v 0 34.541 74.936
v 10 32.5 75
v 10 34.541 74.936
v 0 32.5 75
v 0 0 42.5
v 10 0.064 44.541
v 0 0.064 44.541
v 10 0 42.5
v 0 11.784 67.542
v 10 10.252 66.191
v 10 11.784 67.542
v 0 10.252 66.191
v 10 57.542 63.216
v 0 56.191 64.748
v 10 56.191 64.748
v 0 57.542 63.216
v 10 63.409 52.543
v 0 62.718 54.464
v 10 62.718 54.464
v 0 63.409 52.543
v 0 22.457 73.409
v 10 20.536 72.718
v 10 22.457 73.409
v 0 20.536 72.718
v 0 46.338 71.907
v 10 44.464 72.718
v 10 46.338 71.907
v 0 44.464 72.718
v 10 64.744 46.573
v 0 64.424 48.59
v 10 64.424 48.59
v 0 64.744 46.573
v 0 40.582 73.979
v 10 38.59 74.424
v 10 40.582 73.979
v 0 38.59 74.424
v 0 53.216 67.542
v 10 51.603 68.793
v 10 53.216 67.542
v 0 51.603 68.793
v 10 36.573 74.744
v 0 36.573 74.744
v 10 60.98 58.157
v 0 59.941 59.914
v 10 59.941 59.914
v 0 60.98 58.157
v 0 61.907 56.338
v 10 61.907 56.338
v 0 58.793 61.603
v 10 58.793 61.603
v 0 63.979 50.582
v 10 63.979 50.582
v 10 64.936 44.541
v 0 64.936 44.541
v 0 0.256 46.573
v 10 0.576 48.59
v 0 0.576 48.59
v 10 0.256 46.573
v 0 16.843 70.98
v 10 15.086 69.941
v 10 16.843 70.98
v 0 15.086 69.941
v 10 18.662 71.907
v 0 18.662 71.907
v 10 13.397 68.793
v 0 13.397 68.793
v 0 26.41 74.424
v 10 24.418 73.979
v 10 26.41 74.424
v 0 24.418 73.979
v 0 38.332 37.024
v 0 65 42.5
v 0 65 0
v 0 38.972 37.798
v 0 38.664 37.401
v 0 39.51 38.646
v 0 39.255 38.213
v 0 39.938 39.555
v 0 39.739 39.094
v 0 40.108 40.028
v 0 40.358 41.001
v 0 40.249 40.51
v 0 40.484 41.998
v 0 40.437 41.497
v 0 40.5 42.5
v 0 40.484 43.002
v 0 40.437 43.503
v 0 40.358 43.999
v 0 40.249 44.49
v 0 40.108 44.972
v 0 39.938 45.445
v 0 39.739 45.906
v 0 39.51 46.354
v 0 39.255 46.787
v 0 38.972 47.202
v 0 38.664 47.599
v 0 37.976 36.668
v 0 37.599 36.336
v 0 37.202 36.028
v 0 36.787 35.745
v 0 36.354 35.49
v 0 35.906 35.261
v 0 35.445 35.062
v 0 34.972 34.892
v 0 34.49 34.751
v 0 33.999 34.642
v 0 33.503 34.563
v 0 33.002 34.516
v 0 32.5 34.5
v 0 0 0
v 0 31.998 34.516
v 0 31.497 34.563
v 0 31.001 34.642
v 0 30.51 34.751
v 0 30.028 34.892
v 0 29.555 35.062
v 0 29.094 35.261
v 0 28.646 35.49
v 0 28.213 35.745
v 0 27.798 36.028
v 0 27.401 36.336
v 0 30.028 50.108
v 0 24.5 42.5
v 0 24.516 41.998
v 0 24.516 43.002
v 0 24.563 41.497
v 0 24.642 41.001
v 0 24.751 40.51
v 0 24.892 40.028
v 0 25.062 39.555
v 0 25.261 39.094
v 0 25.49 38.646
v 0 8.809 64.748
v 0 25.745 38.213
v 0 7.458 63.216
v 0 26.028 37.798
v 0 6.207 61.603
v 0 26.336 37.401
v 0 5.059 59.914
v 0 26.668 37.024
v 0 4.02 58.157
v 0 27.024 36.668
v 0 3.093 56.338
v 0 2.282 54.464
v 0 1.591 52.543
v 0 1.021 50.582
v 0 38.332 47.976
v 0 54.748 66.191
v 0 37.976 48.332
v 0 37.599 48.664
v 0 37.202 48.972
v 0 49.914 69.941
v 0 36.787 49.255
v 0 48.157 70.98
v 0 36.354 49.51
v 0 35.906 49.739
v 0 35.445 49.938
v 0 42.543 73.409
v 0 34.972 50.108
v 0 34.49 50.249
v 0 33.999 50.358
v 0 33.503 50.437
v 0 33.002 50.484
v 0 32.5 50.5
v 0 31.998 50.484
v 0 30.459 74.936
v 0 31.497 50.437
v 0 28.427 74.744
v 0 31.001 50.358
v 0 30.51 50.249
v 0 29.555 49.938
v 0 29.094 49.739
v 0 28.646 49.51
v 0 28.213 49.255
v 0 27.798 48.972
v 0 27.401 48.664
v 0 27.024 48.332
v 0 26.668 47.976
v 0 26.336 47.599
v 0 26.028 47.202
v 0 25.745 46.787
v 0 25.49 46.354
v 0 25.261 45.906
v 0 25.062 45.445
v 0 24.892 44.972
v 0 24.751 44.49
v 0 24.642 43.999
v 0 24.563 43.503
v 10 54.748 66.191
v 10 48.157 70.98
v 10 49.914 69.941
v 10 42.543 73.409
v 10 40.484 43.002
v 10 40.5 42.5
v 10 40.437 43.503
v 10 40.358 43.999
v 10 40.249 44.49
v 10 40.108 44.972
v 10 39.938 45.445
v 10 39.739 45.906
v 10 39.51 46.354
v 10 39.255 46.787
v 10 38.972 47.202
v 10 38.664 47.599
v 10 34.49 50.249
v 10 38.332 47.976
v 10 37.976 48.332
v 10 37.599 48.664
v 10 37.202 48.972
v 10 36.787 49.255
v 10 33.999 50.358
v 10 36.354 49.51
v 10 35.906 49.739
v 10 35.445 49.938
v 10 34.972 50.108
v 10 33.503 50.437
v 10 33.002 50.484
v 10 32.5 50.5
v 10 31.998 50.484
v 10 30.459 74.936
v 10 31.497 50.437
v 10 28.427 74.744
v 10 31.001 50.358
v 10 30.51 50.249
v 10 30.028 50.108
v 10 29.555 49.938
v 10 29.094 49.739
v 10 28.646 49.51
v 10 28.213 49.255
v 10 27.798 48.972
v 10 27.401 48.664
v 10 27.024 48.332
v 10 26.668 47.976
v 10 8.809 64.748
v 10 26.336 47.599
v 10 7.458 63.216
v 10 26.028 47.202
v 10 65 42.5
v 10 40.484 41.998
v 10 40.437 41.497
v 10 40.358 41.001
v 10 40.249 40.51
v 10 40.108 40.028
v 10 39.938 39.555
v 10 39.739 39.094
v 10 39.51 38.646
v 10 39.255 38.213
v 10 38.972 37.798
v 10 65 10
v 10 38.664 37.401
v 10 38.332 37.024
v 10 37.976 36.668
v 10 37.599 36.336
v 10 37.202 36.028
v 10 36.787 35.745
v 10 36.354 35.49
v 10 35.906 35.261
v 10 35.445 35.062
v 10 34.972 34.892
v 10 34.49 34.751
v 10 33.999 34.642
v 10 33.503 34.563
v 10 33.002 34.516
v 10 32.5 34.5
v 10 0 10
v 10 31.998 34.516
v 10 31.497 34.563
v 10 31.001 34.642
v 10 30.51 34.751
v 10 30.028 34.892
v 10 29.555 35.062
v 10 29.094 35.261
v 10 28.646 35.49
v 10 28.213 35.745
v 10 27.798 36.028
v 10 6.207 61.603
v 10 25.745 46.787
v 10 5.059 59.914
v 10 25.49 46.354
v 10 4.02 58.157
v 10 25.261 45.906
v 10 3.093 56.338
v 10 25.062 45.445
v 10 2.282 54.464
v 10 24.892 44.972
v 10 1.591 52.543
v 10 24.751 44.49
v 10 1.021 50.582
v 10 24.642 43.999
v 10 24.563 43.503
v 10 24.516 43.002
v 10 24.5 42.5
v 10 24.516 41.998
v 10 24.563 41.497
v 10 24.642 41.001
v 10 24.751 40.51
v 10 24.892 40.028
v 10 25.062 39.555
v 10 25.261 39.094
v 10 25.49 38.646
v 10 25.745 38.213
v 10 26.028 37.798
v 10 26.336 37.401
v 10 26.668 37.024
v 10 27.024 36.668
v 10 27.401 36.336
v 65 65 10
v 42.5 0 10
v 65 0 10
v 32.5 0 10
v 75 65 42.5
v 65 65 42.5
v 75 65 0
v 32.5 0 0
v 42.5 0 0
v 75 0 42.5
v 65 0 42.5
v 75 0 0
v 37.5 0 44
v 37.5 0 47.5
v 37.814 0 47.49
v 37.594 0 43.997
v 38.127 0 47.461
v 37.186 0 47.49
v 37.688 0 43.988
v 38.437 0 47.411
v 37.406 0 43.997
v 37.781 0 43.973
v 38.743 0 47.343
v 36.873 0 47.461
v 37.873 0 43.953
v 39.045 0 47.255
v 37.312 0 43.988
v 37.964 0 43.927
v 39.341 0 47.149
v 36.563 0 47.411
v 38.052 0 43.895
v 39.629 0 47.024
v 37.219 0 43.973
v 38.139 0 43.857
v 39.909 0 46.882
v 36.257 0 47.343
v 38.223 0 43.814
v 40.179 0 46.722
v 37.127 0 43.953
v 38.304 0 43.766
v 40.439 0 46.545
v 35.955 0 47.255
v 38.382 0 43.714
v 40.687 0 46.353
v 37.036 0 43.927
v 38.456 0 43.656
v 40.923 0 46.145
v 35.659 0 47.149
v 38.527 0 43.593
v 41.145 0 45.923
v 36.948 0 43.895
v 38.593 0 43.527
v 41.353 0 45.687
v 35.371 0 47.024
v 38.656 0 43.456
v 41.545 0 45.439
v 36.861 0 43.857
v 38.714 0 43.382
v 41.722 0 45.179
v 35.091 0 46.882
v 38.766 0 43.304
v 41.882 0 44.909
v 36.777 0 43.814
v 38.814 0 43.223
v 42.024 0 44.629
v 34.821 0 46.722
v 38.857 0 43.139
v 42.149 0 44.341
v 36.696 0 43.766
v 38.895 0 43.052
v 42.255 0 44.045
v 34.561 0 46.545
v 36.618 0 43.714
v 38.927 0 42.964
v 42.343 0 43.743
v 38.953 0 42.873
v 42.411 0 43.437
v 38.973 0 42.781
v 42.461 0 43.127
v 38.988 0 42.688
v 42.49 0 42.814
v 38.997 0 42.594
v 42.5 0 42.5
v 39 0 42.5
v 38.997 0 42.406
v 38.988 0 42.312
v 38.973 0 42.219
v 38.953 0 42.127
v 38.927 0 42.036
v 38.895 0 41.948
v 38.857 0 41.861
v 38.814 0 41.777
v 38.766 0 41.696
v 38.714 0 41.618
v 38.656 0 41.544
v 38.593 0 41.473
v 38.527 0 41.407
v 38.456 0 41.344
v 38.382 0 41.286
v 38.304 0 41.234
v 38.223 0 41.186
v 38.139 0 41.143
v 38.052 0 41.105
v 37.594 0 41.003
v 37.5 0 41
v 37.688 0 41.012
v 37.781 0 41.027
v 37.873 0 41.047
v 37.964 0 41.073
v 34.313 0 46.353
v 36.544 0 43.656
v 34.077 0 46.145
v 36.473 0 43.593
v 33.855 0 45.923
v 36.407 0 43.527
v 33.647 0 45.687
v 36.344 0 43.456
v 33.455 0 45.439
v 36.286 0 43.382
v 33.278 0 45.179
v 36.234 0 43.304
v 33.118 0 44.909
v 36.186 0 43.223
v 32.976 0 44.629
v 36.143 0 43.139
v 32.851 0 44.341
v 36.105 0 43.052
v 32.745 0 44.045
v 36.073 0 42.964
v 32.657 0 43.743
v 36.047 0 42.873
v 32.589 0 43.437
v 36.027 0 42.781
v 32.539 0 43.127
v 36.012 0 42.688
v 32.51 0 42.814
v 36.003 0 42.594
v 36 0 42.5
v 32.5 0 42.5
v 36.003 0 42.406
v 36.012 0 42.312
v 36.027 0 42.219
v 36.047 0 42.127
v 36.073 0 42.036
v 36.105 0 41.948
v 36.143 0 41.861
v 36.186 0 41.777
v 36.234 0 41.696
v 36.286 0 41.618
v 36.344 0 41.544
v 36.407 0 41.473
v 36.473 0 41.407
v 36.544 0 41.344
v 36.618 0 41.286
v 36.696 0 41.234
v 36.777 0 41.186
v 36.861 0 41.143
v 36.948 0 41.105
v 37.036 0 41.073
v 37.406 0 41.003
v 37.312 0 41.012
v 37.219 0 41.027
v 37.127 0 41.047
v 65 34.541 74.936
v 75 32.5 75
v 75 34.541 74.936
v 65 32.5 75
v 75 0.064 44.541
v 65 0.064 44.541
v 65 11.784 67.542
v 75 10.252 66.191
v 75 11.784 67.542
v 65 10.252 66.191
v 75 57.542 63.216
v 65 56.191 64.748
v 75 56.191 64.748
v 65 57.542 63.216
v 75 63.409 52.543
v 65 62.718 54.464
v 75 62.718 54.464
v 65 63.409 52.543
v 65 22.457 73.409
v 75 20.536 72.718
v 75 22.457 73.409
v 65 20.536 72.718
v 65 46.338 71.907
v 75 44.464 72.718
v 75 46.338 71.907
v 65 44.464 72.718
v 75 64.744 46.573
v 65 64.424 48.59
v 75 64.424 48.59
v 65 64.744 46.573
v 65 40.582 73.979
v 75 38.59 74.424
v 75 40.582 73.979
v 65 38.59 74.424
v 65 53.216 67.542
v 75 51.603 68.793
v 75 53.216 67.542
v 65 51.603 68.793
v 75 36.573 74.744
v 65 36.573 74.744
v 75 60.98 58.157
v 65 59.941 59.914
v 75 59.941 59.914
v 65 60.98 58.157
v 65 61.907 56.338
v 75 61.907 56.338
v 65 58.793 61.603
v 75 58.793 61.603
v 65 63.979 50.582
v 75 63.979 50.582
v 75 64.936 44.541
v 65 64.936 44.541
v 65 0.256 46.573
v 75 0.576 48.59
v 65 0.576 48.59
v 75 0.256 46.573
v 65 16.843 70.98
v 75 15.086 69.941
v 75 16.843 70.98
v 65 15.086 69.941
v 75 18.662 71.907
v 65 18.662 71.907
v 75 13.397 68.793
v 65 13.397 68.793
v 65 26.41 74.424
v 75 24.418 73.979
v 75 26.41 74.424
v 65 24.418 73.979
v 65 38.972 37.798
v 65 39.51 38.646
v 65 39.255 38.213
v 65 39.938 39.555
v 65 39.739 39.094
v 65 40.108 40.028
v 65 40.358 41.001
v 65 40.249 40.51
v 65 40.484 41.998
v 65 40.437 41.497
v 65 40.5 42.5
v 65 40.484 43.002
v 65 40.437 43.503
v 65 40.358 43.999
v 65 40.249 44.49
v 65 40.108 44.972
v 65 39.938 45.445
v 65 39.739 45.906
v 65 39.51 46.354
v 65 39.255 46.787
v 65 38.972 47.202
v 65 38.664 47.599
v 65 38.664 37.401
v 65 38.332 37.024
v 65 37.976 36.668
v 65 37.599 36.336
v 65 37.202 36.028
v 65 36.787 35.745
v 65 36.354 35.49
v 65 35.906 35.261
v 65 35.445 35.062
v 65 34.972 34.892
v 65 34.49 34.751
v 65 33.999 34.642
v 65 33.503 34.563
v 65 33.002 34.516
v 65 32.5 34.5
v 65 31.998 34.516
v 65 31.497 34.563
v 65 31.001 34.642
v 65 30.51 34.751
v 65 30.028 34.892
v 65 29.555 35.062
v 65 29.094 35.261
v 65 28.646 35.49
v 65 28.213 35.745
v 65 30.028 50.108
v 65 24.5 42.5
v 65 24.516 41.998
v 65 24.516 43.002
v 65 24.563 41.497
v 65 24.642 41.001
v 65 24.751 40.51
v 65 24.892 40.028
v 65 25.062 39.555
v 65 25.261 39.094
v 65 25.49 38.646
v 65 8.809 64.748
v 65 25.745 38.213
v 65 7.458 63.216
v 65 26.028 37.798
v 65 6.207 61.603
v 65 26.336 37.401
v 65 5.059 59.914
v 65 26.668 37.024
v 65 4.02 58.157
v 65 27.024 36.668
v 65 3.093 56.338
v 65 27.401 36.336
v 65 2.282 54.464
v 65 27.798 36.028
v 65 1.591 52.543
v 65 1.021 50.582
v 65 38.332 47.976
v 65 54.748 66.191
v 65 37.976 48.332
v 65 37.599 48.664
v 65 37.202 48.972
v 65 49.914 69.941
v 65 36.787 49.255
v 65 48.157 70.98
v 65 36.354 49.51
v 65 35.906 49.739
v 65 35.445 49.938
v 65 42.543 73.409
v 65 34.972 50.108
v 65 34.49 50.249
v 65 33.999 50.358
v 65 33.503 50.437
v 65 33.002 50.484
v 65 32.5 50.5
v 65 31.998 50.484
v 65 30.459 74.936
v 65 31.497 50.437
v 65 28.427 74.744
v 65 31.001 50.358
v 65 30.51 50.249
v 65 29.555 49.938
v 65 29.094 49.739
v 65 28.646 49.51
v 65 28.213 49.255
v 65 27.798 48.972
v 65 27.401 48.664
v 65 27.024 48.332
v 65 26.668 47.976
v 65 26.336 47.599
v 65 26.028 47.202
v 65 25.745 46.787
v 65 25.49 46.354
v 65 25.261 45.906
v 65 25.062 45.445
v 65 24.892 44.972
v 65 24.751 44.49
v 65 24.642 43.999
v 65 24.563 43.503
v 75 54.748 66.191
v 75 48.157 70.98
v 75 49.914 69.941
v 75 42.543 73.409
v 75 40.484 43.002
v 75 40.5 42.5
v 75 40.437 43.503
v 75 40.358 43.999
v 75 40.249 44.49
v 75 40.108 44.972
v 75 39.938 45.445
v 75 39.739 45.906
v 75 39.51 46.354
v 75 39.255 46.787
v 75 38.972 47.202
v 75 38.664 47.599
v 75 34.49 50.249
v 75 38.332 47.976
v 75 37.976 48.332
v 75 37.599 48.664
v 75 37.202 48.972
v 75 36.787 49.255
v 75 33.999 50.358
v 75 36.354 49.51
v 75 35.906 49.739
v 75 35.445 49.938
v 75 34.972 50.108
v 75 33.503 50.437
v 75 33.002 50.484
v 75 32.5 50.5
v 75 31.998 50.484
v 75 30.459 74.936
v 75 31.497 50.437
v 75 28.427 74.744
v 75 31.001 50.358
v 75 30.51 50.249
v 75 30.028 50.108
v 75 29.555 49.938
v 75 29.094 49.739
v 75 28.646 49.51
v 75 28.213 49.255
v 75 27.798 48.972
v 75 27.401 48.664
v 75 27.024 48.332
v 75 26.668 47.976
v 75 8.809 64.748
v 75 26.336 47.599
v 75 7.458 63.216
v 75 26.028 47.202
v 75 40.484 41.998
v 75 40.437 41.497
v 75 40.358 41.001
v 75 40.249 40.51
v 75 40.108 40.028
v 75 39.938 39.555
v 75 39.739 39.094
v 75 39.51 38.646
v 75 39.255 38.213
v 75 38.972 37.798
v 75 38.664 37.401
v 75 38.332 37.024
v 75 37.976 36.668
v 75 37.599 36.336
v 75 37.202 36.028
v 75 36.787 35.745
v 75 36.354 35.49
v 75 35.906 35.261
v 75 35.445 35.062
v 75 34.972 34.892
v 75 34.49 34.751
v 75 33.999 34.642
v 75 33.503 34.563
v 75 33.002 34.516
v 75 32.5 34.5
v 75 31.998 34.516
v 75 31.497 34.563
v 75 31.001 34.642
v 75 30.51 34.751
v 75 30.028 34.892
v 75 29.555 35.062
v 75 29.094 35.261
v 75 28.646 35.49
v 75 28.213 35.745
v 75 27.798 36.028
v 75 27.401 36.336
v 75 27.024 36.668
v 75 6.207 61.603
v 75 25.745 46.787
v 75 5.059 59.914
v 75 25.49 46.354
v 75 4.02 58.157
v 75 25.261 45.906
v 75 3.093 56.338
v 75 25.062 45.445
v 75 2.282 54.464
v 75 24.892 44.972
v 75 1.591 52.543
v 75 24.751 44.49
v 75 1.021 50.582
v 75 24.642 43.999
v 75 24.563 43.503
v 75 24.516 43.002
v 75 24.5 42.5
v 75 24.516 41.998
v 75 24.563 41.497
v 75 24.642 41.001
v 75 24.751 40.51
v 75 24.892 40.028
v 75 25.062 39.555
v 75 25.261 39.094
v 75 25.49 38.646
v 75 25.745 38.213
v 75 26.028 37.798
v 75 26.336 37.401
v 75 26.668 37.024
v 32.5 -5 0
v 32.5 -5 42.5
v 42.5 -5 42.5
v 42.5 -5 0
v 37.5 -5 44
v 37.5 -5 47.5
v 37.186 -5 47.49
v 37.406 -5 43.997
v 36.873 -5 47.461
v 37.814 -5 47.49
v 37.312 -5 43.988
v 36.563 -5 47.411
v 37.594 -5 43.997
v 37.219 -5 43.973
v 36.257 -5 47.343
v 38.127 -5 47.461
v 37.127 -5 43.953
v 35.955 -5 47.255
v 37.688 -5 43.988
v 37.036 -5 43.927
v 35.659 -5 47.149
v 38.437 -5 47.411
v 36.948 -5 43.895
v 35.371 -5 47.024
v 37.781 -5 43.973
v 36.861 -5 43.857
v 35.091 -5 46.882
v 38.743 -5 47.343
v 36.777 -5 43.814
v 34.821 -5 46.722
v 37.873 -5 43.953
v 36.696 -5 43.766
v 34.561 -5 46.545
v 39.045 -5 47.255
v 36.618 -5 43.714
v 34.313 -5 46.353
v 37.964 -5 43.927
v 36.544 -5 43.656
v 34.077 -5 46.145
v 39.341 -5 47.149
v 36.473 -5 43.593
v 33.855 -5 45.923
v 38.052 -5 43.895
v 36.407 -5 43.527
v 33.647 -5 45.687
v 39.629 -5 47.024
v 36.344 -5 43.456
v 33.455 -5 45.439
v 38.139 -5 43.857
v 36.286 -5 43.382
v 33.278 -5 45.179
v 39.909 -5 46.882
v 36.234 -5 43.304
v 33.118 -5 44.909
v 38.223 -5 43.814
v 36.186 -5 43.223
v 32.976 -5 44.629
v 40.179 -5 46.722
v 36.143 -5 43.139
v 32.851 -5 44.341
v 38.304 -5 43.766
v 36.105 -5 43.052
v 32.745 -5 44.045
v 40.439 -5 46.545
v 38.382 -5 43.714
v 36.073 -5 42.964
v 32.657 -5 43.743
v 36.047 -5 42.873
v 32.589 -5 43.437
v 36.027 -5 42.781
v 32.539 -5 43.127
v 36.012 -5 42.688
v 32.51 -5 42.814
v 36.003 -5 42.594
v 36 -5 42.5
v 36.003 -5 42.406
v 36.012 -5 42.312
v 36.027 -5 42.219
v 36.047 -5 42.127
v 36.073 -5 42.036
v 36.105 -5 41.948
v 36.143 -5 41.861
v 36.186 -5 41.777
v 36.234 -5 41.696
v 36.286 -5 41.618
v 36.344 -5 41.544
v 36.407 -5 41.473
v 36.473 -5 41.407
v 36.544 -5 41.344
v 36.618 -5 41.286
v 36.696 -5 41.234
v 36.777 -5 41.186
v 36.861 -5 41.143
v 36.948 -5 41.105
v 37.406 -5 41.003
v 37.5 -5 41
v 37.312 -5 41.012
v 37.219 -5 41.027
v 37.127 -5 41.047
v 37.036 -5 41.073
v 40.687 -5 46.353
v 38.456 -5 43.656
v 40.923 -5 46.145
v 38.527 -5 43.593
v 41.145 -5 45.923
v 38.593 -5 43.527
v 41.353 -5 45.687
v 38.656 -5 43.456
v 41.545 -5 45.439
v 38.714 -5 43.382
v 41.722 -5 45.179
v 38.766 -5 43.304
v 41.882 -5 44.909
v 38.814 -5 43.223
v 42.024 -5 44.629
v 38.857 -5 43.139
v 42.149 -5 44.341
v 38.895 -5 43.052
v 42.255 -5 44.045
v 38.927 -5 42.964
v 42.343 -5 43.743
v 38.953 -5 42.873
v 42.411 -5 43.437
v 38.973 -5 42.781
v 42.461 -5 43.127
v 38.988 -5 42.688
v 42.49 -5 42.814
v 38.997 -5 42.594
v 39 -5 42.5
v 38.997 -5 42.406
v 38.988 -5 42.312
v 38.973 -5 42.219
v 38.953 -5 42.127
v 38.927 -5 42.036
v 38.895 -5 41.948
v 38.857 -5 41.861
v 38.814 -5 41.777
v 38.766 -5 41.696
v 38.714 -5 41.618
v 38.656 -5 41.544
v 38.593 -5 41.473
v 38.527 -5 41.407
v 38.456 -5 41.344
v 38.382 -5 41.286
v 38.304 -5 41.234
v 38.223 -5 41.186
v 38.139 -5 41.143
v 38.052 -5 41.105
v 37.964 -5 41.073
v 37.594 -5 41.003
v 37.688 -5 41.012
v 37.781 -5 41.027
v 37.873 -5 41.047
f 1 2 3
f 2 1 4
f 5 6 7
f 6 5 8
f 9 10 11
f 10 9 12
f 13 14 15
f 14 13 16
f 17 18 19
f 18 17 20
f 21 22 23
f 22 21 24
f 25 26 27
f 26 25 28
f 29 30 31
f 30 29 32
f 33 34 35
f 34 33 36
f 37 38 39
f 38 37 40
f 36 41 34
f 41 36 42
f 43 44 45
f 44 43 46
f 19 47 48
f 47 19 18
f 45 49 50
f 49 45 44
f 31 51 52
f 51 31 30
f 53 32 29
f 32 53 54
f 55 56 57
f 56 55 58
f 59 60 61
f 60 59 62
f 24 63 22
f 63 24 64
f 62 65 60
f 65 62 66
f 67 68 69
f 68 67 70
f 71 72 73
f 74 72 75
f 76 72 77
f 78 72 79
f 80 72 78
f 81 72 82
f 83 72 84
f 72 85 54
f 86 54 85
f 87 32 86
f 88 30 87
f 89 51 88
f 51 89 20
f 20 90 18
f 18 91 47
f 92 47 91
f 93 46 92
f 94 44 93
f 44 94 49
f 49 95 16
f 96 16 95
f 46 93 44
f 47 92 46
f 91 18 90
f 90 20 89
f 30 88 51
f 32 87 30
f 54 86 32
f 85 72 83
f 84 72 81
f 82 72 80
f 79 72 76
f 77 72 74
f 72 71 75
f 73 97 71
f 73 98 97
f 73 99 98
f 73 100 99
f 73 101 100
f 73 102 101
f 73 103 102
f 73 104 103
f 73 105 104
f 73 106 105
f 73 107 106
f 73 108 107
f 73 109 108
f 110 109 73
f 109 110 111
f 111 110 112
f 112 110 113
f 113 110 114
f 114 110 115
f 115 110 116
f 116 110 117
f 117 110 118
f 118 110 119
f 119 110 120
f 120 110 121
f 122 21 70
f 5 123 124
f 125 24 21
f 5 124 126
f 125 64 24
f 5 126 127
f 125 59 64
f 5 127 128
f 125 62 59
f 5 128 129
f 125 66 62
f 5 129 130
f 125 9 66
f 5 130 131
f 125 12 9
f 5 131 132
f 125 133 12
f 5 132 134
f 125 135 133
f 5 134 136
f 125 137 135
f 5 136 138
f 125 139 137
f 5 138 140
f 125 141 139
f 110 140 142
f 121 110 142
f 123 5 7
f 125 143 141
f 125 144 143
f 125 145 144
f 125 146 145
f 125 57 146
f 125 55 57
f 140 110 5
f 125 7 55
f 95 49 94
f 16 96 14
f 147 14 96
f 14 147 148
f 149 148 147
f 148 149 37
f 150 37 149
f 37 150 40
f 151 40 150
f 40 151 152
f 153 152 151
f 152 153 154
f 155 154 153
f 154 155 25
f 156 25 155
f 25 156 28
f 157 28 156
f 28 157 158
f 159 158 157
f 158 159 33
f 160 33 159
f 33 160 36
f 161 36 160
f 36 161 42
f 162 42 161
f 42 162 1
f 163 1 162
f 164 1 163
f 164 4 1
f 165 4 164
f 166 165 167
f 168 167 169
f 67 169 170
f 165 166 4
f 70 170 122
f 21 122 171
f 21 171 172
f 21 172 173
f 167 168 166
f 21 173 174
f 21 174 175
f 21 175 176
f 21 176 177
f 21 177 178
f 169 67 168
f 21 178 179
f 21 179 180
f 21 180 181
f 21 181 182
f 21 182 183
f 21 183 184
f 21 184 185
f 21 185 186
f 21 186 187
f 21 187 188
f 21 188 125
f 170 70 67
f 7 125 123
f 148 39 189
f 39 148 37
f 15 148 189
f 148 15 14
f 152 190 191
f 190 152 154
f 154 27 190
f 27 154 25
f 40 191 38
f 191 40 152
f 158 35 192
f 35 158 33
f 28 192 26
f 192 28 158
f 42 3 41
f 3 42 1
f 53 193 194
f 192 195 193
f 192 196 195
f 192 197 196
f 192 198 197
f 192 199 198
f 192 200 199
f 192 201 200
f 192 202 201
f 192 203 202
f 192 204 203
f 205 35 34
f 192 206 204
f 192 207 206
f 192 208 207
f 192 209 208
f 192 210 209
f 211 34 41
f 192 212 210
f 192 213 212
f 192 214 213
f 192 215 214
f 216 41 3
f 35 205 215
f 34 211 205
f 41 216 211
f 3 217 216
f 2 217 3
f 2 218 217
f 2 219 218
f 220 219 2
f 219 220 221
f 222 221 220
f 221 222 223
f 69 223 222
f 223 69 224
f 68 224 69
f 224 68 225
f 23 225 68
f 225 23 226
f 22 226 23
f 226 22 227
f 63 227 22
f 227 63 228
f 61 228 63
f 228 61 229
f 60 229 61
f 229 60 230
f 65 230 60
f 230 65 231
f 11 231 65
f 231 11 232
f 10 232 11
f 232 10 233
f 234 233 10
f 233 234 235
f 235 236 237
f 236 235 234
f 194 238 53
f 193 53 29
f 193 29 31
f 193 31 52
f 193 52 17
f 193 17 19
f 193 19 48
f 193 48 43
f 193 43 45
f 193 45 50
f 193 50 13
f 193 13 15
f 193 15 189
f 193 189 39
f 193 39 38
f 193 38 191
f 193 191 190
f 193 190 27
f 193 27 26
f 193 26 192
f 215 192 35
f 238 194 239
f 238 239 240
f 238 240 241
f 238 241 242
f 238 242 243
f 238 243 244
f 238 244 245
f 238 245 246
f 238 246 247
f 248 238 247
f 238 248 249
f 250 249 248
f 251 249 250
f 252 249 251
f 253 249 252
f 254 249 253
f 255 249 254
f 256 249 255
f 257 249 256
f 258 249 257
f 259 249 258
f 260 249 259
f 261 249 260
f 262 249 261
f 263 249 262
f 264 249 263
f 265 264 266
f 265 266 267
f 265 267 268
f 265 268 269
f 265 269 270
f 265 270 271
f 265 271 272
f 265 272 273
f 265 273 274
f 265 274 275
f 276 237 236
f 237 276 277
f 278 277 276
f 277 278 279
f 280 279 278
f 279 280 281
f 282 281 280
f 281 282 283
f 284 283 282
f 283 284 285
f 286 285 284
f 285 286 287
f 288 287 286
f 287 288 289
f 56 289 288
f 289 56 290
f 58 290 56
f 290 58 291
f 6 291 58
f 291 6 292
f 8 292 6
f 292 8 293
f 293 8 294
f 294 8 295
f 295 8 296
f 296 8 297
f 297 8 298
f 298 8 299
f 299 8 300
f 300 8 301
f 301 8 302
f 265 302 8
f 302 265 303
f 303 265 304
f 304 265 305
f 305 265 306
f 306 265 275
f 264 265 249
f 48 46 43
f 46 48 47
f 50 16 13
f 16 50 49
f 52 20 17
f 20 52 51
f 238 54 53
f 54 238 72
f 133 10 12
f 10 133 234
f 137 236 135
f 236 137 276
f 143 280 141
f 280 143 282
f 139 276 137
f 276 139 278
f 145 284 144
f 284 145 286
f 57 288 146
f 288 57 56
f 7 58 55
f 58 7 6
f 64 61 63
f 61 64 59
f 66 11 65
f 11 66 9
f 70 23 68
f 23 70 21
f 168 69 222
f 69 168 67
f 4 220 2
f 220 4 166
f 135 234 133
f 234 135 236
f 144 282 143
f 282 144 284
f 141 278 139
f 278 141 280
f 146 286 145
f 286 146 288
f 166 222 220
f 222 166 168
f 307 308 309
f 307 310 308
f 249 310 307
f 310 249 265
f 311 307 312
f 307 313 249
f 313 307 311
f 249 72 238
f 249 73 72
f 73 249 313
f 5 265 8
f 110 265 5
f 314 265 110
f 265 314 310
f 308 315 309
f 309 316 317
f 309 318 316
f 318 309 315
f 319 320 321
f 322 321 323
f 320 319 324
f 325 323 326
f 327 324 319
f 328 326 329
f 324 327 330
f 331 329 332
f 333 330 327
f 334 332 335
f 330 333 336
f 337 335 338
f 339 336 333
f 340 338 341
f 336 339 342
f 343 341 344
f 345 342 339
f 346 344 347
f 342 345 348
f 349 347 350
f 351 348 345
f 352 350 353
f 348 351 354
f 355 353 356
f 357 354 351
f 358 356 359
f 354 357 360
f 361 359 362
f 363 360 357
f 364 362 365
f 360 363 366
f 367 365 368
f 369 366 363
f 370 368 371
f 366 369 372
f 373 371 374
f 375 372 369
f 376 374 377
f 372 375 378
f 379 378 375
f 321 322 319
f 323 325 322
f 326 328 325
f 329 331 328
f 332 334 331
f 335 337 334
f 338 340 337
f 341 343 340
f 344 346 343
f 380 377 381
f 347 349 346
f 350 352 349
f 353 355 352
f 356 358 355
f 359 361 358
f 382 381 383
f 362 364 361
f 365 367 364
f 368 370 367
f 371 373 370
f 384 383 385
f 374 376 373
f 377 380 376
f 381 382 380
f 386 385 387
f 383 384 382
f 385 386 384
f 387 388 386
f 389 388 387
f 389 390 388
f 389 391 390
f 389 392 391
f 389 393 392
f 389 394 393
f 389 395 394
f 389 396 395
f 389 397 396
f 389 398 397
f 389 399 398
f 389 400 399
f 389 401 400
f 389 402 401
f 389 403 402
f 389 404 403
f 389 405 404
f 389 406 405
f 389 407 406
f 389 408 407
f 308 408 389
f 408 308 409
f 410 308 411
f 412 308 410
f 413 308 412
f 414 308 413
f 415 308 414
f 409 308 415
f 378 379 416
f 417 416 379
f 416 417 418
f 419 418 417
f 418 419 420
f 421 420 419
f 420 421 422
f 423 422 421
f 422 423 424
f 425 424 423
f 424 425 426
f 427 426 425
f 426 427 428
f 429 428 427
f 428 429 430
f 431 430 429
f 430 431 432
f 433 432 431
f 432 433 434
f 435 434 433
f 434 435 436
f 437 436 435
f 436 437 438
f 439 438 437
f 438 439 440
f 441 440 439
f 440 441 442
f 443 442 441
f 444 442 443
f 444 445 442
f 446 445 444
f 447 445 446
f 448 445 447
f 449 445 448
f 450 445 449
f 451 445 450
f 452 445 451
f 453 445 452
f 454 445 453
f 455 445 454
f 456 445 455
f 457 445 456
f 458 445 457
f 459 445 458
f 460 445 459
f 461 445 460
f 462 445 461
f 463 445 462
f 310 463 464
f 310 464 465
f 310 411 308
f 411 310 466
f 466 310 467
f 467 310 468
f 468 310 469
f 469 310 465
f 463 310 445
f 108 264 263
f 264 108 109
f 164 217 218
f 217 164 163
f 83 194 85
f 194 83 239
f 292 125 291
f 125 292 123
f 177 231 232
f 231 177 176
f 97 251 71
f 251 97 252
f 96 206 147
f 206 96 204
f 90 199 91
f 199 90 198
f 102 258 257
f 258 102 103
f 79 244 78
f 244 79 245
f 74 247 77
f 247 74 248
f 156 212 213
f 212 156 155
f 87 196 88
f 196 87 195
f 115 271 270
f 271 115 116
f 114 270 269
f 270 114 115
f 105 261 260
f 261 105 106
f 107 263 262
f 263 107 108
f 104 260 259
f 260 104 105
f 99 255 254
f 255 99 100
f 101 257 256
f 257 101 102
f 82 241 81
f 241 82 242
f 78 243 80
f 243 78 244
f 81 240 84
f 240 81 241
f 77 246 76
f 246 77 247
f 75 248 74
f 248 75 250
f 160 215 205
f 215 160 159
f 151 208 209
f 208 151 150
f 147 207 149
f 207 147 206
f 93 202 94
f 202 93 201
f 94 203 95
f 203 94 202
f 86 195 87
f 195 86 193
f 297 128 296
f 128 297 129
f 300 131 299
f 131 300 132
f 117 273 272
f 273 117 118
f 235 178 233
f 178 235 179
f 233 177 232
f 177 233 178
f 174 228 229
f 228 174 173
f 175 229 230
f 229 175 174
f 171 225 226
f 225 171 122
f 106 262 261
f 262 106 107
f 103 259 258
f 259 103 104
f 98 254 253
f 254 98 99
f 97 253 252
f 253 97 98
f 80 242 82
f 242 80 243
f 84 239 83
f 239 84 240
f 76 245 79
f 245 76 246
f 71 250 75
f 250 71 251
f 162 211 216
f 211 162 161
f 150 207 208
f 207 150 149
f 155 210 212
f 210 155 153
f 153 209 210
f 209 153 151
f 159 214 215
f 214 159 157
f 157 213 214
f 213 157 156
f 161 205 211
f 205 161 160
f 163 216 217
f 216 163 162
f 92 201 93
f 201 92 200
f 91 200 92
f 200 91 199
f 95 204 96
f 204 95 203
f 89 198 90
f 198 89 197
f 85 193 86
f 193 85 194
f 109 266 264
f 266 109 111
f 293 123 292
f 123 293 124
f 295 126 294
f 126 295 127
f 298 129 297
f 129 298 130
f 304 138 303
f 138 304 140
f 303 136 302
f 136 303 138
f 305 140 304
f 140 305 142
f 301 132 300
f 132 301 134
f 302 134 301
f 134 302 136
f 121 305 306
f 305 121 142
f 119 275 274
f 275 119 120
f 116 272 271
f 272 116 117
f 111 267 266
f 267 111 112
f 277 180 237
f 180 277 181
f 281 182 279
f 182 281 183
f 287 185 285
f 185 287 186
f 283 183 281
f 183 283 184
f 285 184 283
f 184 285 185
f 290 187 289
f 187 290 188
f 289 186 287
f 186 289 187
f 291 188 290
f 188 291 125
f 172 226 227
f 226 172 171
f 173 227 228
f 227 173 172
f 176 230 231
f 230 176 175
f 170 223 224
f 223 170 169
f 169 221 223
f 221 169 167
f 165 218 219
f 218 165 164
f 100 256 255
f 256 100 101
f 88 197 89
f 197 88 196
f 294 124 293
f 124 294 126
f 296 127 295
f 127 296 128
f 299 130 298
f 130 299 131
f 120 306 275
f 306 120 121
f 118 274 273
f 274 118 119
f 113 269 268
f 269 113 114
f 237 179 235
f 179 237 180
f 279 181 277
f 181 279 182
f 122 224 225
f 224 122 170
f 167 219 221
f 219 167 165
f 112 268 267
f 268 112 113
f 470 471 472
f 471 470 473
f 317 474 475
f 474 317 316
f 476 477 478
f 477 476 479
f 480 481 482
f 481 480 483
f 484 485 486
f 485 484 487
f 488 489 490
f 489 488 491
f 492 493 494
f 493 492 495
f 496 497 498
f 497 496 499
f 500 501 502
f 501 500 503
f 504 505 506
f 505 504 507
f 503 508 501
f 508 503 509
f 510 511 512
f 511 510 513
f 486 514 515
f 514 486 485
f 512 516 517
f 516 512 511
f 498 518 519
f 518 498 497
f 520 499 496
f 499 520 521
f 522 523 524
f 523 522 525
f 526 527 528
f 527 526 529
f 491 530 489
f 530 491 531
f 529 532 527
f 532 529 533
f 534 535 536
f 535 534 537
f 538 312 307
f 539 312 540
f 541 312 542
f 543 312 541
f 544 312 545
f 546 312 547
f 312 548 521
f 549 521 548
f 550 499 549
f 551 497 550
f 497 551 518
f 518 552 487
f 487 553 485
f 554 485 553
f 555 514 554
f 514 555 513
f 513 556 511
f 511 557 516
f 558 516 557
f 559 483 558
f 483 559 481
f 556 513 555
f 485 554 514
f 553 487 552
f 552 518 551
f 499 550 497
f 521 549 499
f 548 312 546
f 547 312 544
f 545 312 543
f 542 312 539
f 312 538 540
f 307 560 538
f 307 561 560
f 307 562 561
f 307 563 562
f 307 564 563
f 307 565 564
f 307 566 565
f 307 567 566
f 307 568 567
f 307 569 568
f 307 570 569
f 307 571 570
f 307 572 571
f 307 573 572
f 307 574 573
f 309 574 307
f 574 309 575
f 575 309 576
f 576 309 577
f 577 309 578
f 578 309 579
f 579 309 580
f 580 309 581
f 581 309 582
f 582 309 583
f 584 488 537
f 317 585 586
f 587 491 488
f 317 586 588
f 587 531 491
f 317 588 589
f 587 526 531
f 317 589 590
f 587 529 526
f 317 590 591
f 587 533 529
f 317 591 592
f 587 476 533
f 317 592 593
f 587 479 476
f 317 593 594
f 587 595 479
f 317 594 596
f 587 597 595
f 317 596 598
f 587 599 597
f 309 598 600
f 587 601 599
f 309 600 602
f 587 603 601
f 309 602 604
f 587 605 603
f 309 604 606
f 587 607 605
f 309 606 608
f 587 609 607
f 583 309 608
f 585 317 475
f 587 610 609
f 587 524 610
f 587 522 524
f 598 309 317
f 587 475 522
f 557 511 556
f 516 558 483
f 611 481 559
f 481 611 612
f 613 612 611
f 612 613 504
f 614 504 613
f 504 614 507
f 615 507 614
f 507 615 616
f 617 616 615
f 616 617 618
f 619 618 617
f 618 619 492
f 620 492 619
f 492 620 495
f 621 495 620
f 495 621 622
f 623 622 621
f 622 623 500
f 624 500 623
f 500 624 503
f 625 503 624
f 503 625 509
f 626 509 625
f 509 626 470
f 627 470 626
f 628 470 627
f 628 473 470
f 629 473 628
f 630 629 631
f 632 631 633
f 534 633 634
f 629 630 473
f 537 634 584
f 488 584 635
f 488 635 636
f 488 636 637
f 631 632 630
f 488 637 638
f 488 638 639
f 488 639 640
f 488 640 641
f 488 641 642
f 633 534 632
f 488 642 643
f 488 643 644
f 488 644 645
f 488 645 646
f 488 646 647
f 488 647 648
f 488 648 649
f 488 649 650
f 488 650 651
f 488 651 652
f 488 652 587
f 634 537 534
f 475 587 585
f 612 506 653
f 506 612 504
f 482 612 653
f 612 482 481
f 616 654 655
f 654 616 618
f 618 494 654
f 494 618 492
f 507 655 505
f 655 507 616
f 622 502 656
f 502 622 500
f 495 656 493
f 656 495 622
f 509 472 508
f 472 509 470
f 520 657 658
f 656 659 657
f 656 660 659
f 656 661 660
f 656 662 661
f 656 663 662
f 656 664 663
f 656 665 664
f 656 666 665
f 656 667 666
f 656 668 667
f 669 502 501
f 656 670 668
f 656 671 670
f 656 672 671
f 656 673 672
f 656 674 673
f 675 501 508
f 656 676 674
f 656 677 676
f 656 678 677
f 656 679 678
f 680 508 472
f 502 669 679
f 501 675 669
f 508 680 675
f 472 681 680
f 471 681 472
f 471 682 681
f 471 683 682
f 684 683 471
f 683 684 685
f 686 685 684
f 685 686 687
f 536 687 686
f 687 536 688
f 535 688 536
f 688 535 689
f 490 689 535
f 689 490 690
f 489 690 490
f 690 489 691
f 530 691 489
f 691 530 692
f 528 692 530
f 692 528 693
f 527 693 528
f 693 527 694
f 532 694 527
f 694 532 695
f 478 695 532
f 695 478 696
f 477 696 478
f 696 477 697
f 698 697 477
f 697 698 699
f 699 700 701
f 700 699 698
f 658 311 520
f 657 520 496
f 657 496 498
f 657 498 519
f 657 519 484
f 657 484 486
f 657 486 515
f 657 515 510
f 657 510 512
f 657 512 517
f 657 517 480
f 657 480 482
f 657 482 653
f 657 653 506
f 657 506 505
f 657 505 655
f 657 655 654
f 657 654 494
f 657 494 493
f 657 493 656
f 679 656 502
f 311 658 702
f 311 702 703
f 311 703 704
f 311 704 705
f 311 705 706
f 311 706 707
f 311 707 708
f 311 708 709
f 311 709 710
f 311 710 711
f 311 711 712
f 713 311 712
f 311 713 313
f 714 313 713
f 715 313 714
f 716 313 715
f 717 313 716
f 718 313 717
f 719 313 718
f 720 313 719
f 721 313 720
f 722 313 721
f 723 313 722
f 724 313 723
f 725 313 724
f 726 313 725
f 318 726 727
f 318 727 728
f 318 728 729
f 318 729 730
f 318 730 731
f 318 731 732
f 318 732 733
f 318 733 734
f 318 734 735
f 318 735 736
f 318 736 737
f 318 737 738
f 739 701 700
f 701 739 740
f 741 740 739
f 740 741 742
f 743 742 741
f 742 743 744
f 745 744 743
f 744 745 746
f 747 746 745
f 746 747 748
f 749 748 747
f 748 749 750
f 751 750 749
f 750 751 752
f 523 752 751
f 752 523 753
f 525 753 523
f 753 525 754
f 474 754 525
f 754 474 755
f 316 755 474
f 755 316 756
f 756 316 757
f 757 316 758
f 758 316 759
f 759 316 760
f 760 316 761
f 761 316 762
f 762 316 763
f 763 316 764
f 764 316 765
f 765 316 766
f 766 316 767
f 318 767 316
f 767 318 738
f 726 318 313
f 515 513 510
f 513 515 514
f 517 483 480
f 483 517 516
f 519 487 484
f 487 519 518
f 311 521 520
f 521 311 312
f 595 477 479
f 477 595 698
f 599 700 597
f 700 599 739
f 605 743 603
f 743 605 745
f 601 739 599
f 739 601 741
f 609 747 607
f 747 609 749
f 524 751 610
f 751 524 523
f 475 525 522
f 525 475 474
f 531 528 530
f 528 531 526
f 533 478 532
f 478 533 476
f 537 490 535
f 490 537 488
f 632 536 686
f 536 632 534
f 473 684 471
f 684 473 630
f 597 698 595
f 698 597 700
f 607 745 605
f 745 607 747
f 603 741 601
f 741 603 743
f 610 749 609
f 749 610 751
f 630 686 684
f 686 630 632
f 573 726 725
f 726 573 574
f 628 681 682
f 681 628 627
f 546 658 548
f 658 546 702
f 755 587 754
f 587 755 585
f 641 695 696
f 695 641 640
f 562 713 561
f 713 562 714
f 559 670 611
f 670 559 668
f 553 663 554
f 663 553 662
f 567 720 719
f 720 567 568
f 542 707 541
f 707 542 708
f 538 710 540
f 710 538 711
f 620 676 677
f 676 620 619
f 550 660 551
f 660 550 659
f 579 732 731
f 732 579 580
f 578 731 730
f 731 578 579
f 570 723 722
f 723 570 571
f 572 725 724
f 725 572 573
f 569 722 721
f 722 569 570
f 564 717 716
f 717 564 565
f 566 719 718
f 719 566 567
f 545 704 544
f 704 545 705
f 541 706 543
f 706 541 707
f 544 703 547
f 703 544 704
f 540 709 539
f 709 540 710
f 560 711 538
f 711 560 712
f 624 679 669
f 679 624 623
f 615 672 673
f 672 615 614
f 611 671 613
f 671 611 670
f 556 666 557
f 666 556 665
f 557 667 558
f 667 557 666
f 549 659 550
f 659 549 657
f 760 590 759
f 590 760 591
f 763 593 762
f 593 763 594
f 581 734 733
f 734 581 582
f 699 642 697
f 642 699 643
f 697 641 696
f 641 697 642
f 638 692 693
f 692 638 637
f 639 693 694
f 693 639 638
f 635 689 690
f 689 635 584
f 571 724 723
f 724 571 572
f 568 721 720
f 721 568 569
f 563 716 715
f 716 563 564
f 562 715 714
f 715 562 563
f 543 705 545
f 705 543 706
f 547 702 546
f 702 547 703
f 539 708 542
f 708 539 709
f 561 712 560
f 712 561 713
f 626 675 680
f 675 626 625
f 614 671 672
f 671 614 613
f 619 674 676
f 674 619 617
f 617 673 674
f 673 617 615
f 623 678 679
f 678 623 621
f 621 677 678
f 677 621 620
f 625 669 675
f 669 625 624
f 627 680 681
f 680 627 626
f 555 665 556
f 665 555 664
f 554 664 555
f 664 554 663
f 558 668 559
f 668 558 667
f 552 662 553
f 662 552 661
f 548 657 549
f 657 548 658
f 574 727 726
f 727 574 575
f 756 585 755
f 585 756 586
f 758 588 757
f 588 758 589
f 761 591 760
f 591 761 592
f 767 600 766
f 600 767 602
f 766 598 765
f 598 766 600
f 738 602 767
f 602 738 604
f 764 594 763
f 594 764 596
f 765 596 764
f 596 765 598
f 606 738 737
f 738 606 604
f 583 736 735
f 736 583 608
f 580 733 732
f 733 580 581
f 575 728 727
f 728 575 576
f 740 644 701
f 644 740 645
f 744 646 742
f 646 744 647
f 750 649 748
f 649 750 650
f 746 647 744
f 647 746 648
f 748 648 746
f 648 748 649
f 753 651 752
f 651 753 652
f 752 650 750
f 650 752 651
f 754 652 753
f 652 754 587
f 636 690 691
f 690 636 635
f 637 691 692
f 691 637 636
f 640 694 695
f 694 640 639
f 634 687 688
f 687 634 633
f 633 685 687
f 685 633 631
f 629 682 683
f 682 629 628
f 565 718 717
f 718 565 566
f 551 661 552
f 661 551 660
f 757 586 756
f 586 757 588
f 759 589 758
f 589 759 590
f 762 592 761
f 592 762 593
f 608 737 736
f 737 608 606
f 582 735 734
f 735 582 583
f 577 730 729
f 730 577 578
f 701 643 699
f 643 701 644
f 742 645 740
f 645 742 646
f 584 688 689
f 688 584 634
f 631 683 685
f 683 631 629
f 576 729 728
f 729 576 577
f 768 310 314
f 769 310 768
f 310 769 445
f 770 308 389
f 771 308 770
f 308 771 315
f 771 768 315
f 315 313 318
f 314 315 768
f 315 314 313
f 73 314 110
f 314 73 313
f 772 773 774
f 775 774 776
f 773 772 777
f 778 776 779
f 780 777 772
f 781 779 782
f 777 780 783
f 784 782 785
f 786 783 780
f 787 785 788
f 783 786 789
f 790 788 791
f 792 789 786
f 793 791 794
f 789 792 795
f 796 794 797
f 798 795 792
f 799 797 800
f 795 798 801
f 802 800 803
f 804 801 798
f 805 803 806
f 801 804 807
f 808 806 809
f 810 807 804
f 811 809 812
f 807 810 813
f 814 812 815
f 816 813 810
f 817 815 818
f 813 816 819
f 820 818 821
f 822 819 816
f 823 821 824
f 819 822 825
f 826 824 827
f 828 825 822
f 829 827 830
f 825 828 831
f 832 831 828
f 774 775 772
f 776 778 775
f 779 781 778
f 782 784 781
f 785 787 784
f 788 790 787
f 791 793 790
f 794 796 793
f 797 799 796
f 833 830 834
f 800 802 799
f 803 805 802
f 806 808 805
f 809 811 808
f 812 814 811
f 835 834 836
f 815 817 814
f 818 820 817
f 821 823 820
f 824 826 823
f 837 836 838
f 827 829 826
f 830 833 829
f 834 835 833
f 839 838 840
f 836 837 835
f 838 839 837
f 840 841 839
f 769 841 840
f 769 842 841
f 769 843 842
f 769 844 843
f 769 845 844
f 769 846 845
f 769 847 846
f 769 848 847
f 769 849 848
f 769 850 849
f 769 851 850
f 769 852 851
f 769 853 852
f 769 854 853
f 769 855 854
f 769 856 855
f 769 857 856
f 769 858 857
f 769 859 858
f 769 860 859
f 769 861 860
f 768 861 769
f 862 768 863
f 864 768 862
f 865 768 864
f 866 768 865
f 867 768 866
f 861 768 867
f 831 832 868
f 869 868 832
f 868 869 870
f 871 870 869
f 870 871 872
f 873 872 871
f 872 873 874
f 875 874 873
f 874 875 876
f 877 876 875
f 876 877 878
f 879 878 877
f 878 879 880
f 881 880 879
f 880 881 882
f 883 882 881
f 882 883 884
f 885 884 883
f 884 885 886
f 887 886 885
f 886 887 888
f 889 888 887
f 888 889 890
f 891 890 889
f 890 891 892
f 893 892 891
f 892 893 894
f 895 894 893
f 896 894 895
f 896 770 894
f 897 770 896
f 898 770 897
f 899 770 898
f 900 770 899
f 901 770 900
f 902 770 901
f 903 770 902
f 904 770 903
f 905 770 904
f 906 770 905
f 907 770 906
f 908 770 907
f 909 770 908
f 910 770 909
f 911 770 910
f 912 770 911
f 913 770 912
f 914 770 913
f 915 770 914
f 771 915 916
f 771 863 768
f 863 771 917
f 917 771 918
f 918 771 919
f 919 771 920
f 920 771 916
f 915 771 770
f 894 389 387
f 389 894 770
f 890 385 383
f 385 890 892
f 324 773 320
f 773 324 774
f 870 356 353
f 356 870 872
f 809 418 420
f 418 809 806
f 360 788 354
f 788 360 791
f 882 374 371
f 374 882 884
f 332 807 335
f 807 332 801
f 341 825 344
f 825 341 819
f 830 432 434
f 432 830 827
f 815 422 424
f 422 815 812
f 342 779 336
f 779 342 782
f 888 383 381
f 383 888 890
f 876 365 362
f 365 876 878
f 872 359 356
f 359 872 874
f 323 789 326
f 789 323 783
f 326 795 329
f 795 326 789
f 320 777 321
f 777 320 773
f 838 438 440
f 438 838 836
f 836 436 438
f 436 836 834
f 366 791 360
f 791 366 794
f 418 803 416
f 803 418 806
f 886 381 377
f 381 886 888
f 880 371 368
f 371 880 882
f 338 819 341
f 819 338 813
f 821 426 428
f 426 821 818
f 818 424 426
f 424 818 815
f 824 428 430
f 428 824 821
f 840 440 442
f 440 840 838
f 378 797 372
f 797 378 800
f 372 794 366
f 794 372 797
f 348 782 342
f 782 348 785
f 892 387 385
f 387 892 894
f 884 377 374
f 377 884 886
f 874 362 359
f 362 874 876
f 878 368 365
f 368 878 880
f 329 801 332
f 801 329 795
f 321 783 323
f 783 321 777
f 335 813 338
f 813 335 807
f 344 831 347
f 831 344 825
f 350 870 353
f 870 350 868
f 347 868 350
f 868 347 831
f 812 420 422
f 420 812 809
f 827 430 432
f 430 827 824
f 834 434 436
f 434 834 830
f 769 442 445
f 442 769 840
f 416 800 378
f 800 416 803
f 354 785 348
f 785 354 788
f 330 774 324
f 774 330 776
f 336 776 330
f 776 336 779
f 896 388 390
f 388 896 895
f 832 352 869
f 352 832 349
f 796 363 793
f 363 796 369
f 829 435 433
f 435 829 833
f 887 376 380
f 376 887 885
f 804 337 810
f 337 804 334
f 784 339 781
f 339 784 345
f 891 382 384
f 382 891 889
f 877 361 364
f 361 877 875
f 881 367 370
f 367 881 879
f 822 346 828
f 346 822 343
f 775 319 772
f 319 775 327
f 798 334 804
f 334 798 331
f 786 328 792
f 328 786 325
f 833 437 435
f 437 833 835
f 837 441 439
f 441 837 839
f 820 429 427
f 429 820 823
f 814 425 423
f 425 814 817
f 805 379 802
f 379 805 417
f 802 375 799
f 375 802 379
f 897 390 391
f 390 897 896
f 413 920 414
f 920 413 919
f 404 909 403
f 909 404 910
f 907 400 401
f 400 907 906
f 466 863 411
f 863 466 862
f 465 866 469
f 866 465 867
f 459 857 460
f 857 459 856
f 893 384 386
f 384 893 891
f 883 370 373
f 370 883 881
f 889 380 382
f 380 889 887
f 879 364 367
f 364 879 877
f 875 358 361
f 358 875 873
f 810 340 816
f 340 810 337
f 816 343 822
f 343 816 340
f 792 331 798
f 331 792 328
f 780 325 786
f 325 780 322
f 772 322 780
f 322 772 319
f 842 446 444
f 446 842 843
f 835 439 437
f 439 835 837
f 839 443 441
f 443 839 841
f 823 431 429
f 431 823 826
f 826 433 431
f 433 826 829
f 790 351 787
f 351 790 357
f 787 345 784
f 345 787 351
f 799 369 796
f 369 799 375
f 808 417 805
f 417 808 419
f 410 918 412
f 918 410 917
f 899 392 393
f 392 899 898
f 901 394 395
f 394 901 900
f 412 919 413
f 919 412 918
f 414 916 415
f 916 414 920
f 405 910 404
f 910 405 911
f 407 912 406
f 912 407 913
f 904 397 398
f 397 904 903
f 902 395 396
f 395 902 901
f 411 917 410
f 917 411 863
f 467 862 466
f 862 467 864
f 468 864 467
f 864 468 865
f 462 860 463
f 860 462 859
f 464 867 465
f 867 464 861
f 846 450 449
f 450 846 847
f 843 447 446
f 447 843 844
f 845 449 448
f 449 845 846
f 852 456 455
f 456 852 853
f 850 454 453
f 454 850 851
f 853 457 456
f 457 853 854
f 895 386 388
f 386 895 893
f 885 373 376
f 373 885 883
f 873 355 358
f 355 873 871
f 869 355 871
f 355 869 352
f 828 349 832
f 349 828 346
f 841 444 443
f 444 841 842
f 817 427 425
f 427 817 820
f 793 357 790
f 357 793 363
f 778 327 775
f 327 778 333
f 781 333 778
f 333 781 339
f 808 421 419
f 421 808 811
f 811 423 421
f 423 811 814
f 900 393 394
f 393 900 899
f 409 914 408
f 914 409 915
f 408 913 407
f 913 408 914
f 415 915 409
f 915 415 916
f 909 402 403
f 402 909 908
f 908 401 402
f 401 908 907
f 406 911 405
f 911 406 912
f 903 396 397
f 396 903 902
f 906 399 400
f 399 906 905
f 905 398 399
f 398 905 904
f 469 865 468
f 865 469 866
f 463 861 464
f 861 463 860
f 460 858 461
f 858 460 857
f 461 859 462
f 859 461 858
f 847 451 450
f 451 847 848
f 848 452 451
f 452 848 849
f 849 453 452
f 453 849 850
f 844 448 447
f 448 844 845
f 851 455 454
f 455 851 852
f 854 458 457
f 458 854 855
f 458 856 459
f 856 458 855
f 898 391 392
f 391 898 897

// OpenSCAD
$fn = 100;

spoolH = 45;
spoolOd = 55;
spoolId = 16;

holder();
//rod();

module rod() {
    translate([0, 0, 1.5]) {
        translate([0, 0, 6])
        difference() {
            cylinder(h = spoolH + 30 + 5, d = spoolId - 0.5);
            cylinder(h = spoolH + 30 + 5 + 0.1, d = spoolId - 4);
        }
        minkowski() {
            cylinder(h=5, d = spoolId + 2);
            sphere(1.5);
        }
    }
}

module holder() {
    cube([spoolH + 30, spoolOd + 10, 10]);
    side();
    translate([spoolH + 20, 0, 0])
    side();

    // feeder
    translate([(spoolH)/2 + 10, -5, 0])
    difference() {
        union() {
            cube([10, 5, spoolOd/2 + 15]);
            rotate([90, 0, 0])
            translate([5, spoolOd/2 + 15, -5])
            cylinder(h = 5, d = 10);
        }
        rotate([90, 0, 0])
        translate([5, spoolOd/2 + 15, -5.05])
        cylinder(h = 5.1, d = 3);
    }
}

module side() {
    translate([0, 0, (spoolOd + 10)/2 + 10])
    rotate([0, 90, 0])
    translate([0, (spoolOd + 10)/2, 0])
    difference() {
        union() {
            cylinder(h = 10, d = spoolOd + 10);
            translate([0, -spoolOd/2 - 5, 0])
            cube([(spoolOd + 10)/2, spoolOd + 10, 10]);
        }
        translate([0, 0, -0.05])
        cylinder(h = 10.1, d = spoolId);
    }
}
